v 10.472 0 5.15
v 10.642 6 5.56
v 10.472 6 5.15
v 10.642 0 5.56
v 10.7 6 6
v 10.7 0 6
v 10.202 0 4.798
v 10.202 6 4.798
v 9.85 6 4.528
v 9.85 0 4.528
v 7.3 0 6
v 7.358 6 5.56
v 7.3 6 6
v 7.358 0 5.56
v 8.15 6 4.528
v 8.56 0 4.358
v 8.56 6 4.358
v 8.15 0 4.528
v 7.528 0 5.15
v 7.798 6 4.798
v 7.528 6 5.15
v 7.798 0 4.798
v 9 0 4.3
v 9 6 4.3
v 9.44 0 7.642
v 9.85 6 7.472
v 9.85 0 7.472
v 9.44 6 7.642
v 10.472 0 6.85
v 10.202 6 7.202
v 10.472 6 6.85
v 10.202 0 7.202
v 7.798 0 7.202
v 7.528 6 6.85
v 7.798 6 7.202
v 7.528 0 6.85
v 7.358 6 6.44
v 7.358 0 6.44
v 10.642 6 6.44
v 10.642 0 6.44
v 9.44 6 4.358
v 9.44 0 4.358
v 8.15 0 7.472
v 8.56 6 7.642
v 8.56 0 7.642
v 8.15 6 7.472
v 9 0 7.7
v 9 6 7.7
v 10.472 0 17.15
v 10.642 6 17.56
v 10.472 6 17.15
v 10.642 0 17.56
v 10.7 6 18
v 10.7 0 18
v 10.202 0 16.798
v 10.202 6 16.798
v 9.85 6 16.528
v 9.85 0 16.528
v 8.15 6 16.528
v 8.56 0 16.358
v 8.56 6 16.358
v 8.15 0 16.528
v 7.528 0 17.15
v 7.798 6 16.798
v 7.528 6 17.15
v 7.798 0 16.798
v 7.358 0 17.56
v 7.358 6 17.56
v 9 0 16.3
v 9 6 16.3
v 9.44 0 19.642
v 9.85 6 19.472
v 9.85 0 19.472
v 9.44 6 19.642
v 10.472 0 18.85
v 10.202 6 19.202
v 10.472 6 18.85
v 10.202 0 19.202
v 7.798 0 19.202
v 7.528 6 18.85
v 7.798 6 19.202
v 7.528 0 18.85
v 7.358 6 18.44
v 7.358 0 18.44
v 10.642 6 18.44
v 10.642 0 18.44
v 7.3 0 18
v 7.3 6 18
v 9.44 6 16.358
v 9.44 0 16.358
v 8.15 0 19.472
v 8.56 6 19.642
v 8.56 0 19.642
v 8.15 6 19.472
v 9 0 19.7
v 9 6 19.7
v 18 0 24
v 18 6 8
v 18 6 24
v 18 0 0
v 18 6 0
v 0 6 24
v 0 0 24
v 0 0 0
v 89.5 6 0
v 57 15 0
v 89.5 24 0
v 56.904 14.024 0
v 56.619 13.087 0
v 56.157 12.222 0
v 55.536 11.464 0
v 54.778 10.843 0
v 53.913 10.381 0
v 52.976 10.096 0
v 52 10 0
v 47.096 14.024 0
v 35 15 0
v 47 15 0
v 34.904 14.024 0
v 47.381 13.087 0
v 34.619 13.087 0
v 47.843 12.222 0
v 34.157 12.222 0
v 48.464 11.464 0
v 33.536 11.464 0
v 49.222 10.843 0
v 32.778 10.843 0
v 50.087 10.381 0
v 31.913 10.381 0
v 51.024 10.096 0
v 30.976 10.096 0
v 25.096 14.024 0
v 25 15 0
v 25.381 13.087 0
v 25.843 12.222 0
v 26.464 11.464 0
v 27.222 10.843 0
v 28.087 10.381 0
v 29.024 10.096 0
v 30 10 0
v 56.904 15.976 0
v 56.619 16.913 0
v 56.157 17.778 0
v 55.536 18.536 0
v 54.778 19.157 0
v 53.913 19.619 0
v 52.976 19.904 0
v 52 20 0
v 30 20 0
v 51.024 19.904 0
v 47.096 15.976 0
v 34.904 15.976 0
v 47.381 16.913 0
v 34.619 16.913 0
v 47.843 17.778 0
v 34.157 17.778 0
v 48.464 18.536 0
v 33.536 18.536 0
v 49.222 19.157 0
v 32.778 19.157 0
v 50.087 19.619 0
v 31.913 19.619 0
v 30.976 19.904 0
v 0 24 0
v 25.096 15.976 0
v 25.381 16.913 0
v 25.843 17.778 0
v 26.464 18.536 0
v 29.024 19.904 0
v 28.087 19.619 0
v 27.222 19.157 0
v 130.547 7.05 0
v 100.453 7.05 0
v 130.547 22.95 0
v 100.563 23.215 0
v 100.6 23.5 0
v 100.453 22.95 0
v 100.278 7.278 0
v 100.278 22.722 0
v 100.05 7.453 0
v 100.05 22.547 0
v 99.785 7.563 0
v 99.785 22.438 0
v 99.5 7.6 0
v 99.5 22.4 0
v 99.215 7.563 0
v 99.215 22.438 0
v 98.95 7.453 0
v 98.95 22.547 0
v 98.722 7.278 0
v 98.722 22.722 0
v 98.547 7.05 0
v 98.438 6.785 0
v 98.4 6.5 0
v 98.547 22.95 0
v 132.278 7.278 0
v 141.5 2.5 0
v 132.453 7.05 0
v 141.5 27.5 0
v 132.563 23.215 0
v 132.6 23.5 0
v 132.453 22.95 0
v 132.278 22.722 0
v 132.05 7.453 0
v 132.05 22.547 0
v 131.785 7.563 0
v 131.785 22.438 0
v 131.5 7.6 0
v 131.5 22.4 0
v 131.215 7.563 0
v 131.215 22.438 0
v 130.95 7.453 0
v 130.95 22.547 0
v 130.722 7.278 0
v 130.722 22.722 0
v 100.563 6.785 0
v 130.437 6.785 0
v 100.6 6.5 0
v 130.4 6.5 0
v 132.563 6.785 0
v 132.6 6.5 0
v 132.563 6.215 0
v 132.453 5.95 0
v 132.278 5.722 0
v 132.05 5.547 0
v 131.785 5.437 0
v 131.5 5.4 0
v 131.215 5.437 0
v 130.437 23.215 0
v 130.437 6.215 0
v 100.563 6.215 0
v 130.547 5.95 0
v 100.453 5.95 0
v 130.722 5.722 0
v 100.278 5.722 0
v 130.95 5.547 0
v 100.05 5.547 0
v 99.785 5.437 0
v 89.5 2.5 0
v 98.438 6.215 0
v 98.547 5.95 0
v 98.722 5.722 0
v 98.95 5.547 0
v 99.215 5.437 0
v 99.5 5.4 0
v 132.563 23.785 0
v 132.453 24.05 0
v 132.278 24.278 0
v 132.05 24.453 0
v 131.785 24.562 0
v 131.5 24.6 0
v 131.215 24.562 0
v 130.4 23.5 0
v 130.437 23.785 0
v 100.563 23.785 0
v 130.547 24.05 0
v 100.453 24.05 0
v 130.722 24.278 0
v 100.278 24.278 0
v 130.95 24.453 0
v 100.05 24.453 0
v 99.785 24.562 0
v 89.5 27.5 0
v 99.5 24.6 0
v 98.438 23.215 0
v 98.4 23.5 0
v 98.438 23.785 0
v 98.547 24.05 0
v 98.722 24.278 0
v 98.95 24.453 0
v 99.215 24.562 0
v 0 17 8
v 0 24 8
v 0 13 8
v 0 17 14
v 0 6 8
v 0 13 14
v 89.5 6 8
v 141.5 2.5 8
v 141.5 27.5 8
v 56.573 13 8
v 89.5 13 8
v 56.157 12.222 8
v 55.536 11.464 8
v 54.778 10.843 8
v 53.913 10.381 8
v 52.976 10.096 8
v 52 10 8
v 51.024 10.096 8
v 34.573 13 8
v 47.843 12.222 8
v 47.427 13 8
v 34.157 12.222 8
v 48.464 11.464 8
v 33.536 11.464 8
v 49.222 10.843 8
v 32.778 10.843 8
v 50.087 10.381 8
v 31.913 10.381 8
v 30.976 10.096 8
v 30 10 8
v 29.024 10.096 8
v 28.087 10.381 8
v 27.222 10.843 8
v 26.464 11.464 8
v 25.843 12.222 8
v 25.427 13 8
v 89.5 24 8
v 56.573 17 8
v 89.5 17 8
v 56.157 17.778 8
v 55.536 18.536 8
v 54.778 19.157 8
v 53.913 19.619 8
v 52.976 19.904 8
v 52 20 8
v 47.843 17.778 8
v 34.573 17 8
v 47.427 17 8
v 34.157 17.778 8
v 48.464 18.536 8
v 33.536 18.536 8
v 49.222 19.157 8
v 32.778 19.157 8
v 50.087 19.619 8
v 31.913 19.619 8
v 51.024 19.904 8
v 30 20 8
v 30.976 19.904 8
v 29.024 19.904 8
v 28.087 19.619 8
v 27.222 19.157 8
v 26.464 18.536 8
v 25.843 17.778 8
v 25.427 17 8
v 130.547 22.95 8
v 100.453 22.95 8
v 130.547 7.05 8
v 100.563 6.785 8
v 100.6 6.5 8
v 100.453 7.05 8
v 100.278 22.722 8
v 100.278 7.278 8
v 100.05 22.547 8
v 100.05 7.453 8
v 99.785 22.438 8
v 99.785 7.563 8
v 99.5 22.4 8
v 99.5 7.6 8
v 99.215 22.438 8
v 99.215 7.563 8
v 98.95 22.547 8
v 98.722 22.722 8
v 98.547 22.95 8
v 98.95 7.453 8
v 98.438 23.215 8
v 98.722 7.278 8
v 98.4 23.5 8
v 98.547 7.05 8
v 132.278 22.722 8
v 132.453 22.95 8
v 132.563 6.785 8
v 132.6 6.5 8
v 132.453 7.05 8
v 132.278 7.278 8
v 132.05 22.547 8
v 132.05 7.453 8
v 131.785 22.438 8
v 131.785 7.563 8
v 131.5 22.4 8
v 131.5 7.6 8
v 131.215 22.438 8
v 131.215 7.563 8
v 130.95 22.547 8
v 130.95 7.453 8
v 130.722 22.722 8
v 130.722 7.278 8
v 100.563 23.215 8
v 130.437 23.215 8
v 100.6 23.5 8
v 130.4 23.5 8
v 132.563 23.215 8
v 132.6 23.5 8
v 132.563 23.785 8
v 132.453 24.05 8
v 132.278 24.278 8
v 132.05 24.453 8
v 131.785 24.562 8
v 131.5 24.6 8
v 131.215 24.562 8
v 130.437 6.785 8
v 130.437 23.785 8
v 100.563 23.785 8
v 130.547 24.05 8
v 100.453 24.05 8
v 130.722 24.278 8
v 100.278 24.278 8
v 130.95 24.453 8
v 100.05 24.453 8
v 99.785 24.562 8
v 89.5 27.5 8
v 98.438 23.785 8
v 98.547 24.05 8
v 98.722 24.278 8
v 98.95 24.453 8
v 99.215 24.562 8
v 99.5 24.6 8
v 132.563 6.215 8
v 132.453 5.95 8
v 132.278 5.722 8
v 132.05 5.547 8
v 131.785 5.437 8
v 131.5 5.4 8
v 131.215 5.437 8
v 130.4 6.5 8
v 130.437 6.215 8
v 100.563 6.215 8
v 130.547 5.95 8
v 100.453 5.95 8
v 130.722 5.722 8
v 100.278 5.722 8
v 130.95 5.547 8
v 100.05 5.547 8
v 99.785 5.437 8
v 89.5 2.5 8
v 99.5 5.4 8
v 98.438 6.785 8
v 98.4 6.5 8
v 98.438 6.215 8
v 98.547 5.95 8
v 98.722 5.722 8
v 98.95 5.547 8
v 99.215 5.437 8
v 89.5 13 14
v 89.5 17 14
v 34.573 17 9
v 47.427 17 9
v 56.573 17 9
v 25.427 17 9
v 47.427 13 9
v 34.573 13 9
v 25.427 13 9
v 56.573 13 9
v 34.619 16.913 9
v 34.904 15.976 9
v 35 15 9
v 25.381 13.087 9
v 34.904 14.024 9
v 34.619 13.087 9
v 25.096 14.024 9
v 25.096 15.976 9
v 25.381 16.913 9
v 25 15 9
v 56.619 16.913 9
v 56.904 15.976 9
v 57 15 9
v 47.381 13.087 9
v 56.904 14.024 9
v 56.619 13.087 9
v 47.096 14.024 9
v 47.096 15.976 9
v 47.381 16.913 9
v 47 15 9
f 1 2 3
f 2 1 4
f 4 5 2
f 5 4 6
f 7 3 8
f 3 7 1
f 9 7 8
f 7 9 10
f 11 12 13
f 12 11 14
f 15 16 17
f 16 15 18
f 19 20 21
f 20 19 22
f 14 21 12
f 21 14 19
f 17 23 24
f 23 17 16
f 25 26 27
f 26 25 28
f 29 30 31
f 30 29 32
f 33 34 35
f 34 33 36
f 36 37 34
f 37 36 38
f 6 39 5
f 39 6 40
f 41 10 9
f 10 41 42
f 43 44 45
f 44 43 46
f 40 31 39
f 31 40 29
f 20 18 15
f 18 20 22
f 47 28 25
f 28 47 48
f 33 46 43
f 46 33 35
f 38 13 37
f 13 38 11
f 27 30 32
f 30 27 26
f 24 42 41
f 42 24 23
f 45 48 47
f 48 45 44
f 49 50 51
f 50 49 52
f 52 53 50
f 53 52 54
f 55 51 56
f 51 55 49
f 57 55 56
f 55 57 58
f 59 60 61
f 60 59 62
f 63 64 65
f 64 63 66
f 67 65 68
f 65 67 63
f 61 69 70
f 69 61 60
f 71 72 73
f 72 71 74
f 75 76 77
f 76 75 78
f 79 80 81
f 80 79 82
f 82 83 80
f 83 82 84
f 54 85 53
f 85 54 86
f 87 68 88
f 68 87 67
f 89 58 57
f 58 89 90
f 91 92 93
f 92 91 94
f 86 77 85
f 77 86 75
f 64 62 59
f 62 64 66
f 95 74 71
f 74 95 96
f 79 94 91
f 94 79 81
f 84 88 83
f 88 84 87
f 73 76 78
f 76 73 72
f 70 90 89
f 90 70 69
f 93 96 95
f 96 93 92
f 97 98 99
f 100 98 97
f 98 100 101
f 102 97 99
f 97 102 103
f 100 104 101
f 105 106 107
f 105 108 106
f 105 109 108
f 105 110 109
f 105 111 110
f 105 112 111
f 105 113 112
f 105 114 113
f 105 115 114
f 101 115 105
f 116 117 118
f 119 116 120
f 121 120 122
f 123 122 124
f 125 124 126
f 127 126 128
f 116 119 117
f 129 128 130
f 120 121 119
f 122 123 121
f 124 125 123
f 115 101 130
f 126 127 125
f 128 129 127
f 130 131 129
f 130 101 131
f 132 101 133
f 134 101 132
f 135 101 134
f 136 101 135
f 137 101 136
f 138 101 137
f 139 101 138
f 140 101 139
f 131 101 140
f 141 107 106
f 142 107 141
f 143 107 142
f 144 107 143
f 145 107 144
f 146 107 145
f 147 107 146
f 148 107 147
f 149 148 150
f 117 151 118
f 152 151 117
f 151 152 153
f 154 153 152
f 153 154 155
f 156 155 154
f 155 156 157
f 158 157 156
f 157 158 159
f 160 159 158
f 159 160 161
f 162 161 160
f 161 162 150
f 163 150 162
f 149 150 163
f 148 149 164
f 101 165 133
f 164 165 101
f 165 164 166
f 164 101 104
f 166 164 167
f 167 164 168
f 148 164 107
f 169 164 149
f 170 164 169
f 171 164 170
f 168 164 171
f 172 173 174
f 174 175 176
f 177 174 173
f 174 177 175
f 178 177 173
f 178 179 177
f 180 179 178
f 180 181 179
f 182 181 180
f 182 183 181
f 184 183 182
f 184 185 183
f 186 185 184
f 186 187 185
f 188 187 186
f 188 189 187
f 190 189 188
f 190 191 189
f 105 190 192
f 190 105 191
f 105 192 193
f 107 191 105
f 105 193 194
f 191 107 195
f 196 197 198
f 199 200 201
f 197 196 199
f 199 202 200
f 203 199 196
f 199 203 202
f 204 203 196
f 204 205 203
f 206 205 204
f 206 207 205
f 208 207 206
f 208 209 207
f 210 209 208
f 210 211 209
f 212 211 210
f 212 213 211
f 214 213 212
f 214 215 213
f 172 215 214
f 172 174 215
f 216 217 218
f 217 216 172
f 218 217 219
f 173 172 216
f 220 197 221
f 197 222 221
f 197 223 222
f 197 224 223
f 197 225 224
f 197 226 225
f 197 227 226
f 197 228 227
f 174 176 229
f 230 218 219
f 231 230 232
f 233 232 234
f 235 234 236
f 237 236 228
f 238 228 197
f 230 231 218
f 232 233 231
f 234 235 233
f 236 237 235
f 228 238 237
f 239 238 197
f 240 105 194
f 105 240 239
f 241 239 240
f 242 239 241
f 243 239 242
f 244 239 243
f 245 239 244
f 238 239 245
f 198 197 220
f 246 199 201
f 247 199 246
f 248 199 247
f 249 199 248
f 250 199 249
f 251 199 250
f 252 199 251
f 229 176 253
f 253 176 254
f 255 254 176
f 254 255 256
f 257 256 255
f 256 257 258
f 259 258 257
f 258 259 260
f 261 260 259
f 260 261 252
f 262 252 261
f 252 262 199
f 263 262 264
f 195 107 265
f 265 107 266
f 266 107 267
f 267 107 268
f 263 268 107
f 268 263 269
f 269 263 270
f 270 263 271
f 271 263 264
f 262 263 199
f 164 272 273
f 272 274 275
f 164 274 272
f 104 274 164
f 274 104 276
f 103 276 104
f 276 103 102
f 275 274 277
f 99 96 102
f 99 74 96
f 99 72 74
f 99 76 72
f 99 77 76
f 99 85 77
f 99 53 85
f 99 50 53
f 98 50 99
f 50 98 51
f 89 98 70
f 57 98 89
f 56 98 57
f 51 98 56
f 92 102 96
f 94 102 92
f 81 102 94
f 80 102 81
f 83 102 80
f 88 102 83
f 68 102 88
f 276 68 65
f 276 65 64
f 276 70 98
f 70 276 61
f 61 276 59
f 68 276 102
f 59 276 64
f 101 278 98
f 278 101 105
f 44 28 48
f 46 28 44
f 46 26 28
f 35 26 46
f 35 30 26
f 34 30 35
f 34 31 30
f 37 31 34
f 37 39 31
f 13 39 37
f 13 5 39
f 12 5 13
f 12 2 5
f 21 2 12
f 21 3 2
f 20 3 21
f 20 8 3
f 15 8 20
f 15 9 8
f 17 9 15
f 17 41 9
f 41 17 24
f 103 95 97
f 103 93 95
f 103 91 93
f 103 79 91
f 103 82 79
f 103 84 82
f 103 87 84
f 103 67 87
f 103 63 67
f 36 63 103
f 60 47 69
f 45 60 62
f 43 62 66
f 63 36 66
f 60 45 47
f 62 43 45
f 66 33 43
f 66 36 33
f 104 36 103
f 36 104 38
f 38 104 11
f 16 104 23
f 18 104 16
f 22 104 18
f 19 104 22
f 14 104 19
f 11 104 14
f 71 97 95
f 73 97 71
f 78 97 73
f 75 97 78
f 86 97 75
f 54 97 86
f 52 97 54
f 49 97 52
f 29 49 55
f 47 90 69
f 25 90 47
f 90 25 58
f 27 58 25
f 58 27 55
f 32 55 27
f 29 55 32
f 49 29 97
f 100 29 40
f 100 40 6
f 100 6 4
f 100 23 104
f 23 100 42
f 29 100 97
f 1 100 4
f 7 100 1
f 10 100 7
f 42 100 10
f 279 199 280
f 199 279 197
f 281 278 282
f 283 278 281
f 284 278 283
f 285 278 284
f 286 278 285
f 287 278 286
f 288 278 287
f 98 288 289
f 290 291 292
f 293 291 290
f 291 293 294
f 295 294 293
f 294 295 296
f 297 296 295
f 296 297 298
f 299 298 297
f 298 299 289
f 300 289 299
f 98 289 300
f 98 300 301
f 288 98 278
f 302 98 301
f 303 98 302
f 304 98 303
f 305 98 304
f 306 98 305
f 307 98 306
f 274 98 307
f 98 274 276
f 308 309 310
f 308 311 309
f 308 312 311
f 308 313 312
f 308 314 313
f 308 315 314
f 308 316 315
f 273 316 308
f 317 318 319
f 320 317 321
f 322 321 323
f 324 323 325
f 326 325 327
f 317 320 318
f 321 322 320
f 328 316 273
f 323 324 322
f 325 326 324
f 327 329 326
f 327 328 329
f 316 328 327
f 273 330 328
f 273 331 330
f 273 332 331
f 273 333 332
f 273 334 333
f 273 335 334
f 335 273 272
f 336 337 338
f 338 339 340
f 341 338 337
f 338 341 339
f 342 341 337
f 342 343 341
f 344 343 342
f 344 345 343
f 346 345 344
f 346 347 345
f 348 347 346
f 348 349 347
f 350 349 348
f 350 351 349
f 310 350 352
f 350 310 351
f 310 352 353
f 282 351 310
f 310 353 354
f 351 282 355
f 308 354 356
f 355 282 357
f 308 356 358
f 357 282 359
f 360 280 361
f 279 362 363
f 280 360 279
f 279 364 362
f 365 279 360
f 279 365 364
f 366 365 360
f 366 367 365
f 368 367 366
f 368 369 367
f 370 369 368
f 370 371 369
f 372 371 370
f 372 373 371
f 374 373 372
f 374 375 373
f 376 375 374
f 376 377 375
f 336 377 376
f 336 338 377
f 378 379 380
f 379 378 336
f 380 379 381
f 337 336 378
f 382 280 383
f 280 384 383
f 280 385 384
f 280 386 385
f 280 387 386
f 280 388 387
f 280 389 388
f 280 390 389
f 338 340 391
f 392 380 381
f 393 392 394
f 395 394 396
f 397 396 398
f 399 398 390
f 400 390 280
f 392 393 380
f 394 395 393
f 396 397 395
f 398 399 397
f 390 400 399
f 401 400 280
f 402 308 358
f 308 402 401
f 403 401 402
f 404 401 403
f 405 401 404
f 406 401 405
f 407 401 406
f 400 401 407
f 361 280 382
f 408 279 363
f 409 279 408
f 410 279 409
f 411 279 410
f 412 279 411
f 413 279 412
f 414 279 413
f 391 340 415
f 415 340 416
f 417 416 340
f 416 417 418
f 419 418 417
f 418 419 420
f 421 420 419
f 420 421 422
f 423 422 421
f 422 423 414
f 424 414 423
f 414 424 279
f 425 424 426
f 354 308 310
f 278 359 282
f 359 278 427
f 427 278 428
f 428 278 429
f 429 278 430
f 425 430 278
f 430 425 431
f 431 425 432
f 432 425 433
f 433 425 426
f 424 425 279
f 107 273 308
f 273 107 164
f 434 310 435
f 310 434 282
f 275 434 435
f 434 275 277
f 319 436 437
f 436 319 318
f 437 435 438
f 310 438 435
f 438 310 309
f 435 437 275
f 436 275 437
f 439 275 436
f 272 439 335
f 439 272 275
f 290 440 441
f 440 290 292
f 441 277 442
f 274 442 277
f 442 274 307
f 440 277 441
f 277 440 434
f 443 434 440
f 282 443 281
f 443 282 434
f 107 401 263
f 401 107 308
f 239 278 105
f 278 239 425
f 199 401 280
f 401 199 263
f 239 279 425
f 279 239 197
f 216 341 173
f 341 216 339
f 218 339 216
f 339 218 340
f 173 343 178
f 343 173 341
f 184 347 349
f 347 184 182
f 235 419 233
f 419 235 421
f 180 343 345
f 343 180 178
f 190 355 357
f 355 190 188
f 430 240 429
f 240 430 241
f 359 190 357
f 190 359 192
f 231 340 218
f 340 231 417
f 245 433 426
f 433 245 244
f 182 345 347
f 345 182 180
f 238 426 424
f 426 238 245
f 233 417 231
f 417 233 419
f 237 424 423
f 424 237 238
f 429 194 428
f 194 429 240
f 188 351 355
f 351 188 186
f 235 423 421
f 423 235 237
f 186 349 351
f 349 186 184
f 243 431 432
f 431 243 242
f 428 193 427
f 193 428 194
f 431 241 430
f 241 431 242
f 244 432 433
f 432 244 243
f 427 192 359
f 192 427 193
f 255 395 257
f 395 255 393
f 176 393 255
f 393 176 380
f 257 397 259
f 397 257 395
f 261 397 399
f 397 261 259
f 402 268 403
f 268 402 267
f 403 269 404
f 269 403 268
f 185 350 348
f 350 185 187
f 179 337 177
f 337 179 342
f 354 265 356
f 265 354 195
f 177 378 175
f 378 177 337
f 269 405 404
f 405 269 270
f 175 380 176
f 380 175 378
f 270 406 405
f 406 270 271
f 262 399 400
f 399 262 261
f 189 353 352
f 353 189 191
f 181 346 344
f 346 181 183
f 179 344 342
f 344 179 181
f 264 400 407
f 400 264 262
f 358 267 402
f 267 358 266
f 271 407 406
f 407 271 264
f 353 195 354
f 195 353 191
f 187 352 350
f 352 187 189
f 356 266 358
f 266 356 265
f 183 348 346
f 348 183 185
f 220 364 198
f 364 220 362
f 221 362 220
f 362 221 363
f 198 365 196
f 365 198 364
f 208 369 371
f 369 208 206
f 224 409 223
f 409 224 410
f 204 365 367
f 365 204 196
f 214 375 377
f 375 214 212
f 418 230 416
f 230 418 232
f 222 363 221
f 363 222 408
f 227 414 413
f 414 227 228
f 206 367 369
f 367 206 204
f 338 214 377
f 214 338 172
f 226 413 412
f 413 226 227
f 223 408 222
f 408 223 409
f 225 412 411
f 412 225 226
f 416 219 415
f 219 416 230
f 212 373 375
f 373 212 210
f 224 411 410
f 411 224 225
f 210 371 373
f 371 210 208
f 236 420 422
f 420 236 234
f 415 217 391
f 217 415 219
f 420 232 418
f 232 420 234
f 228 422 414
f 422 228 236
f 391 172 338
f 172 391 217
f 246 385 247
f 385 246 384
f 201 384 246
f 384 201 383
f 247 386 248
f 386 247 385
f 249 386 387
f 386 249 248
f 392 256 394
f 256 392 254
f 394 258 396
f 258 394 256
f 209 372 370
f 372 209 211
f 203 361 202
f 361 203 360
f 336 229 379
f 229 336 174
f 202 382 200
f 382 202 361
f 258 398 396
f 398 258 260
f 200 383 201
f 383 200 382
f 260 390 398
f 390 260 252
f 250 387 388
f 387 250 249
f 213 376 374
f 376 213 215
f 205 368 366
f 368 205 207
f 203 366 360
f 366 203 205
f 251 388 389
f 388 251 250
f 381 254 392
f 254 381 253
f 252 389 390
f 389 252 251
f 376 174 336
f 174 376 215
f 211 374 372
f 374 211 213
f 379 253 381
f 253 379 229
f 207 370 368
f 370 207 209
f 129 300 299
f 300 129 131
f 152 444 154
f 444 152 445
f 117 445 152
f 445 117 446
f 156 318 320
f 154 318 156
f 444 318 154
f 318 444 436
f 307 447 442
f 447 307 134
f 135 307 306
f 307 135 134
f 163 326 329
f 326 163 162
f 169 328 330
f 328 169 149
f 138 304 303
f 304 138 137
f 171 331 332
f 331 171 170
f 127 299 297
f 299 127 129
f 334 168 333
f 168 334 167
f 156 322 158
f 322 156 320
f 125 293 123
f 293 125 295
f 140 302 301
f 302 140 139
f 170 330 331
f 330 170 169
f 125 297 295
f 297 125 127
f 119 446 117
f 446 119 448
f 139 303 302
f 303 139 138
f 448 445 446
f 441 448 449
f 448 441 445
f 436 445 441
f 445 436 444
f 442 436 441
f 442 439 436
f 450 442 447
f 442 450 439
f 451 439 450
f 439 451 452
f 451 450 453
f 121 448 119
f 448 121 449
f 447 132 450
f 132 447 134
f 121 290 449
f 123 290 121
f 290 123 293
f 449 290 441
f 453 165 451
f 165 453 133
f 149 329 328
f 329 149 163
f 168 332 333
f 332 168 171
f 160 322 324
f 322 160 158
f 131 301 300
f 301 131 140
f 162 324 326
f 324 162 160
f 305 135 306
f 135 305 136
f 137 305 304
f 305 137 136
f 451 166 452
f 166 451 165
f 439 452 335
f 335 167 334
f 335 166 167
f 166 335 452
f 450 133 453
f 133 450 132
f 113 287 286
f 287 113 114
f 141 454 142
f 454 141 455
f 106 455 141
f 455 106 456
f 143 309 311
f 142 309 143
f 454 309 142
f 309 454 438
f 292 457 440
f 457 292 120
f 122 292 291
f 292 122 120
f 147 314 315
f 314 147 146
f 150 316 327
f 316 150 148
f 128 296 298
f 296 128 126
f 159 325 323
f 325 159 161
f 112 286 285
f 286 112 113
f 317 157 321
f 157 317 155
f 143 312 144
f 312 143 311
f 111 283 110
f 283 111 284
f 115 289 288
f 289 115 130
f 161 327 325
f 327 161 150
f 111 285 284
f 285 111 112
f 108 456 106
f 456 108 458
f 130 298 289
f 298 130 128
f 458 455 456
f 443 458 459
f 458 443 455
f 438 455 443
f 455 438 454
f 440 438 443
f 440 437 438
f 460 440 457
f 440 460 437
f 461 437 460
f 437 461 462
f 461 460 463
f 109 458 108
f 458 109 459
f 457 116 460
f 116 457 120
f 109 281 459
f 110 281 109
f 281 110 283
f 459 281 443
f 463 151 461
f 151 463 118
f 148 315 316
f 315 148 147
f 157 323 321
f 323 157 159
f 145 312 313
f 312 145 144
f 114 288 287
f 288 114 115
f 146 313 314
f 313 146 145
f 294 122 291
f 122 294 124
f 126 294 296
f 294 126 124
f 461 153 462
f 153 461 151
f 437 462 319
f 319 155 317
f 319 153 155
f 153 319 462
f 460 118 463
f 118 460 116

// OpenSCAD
// file: layout.scad
// GENERATED by cad/fit.py from cad/ordered_parts.toml and config.scad.
// Do not edit: change those and run  python3 cad/fit.py  (from sport_cam/).

base_d = 141;
base_h = 84;
window_z = 36.5;
shelf_z = 48.5;
shelf_r = 66.75;
gap_ang = 300;
gap_d = 22;
post_r = 63.5;
post_angs = [15, 100, 225];
window_ribs = [15, 35, 55, 75, 95, 115, 135, 155, 175, 195, 215, 235, 255, 275, 295, 315, 335, 355];
pi_holes = [[-36.525, -40.718], [13.704, -11.718], [-61.025, 1.718], [-10.796, 30.718]];
pi_hole_d = 2.9;
usbc_ang = 150;
usbc_z = 8.35;
usbc_w = 13.5;
usbc_h = 8;
jack_ang = 210;
jack_z = 9.5;
jack_d = 8.2;
switch_ang = 120;
switch_z = 11.5;
switch_cut_w = 19.2;
switch_cut_h = 13.2;
switch_panel_t = 2;
vents_low = [5, 25, 45, 65, 245, 305, 325, 345];
vent_low_z = 9;
vents_high = [5, 65, 85, 105, 165, 185, 205, 245, 265, 285, 345];
vent_high_z = 64.75;
lid_screw_angs = [45, 135, 225, 315];
lid_screw_z = 81;
lid_nut_recess = 0.7;
ptz_nut_af = 5.5;
ptz_slot_min = 30;
ptz_slot_max = 72;
risers = [];
insert_od = 12.7;
insert_l = 8;
bank_l = 150;
bank_w = 72;
bank_h = 30;
uwb_l = 40;
uwb_w = 25;
uwb_hole_dx = 32;
uwb_hole_dy = 17;
ula1_tangential = false;
mast_d = 12.7;
pod_inner_l = 138;
pod_inner_w = 27;
pod_inner_h = 25;
pod_ula1_x0 = 98;
pod_charge_slot = true;
usb_entry_ang = 25;
usb_entry_z = 71;
usb_entry_w = 18;
usb_entry_h = 10;
// file: config.scad
// SportCam — parametric dimensions (mm). Every part file includes this.
//
// Three kinds of number feed the CAD:
//   * design choices — wall thickness, clearances, the anchor baseline — set below;
//   * the sizes of the parts you buy — in ../../cad/ordered_parts.toml;
//   * the layout — where each board sits, which way the Pi faces, how big
//     the enclosure is — which ../../cad/fit.py solves from the other two
//     and writes to layout.scad (included half-way down).
// After changing either file run   python3 cad/fit.py   from sport_cam/.
// It re-solves the layout, re-renders the STLs and audits that every part
// fits together and prints on a Bambu Lab A1 Mini (cad/FIT_REPORT.md).
//
// Keep the numbers above the include plain numbers (fit.py reads them);
// anything worked out from the layout goes below it.
//
// This is the **PTZ-base build**: the camera, pan and tilt all come from the
// Arducam IMX477 PTZ camera with metal pan-tilt base (B0167B12), which bolts
// to the lid of a static enclosure — see docs/design/03-mechanical-design.md.

$fn = 96;
clr = 0.25;                    // general printed-fit clearance per side

// ---- enclosure -------------------------------------------------------------
// Bottom to top: the power boards stuck to the floor; the LED ring under a
// printed shelf, shining out through the LED window; the Raspberry Pi on the
// shelf; the lid with the camera. Every part must print in one piece on a
// Bambu Lab A1 Mini (≤ 170 mm on every axis); fit.py keeps it that way.
base_d_min    = 135;           // narrowest enclosure (outer Ø); fit.py widens it only if the parts need it
base_h_min    = 66;            // lowest floor-to-lid height; fit.py raises it to clear the stack
base_wall     = 3;
lid_t         = 5;             // lid is structural: it carries the whole camera
spigot_h      = 6;             // locating ring under the lid that drops into the mouth
spigot_w      = 3;
lid_screw_pad = 7;             // the ring is thickened here for the four radial M3 inserts
lid_screw_d   = 3.4;
led_window_h  = 12;            // circumferential window the LED ring lights
window_bridge = 22;            // longest unsupported span over the window; ribs every this far
window_rib_w  = 3;
diffuser_t    = 1.6;           // translucent band slid over the outside of the window
diffuser_lip  = 2;             // how far it overlaps the wall above and below
ledge_h       = 2;             // the band rests on this outside ledge

tripod_boss_d = 24;            // floor boss for the 3/8-16 insert (bore from ordered_parts.toml)
tripod_boss_h = 8;

tape_t        = 1;             // foam tape under the power boards and the LED ring
part_gap      = 2;             // clearance fit.py keeps between parts
wall_gap      = 1;             // and between a part and the wall
shelf_t       = 3;             // the Pi shelf
post_d        = 10;            // shelf posts, merged into the wall; M3 insert in each top
post_insert_d = 4.0;
vent_w        = 4;
vent_h        = 8;
ribbon_slack_h = 8;            // clear height kept under the lid opening for the coiled camera ribbon

// ---- Arducam pan-tilt base interface ---------------------------------------
// Arducam publishes no drawing for the B0167B12 metal base and the footprint
// has changed between revisions, so the lid is cut with radial SLOTS spanning
// this range. Your base's spacing goes in ordered_parts.toml [ptz]; the audit
// checks it lands inside.
ptz_bolt_min  = 30;
ptz_bolt_max  = 72;
ptz_slot_w    = 3.4;           // M3 clearance
ptz_cable_d   = 34;            // central opening: CSI ribbon + servo leads drop through

// ---- UWB anchor arms (static) ----------------------------------------------
// The anchors don't rotate with the camera, so the arms bolt to the enclosure
// wall. Board centres land `uwb_half_base` either side of the pan axis; the
// tracker subtracts the commanded pan angle (docs/04).
uwb_half_base = 190;           // board centre; the antenna sits 10 mm further out → 400 mm
arm_w = 18; arm_t = 8;
arm_root_h = 24;               // bracket height where the arm meets the wall
arm_boss_z = 10;               // bottom of the wall bosses
arm_insert_d = 4.0;            // M3 heat-set inserts in the bosses
ula1_standoff_h = 3;

// ---- third anchor mast (A3) ------------------------------------------------
// A3 gives elevation, which the horizontal A1-A2 bar cannot. It stands on a
// bought ½-inch hardwood dowel held in a printed foot on a third wall boss at
// −X — directly behind the lens, where pan (±80°) never points it — with a
// printed cradle carrying the board at the top. Wood, not metal: a metal
// tube right under a UWB antenna detunes it.
anchor_board_z = 22;           // A1/A2 board height above the enclosure floor
uwb_v_base  = 250;             // A3 board this far above A1/A2 (= σφ baseline)
mast_wall   = 4;               // socket wall
mast_floor  = 2;               // closed socket bottom; sets the dowel's height
mast_foot_h = 44;              // foot socket depth: long, so the mast stands still
mast_cap_h  = 30;              // cradle socket depth

// ---- battery tray ----------------------------------------------------------
// Sized to the power bank in ordered_parts.toml. Straps to a tripod leg or
// centre column, or sandwiches under the enclosure on a long 1/4-20.
tray_wall = 2.4;
tray_lip = 10;                 // how far the side walls come up the bank
tray_strap_w = 26;             // hook-and-loop strap slots

// ---- wearable pod ----------------------------------------------------------
// The tag is a ULA1 plugged straight into a slim USB bank, end to end; fit.py
// sizes the pod from both (ordered_parts.toml).
pod_wall = 2.0;
strap_w = 26;                  // elastic armband width
pod_max_l = 150;               // longest pod that's still comfortable on an arm

// ---- solved layout ---------------------------------------------------------
include <layout.scad>          // GENERATED by cad/fit.py — bought-part sizes + layout

R_in = base_d / 2 - base_wall; // inside of the wall
tripod_hole_d = insert_od;     // the 3/8-16 insert, epoxied: a snug slip fit

arm_boss_r = base_d / 2 + 4;   // outer face of the wall boss the arm bolts to
arm_len = uwb_half_base - arm_boss_r;             // boss face to board centre

// ULA1 pad. fit.py turns the boards across the arms (plug towards −X) when
// the extension cable's socket end has no room between the plug and the
// enclosure; the pad and holes follow.
pad_along   = ula1_tangential ? uwb_w + 12 : uwb_l + 12;
pad_across  = ula1_tangential ? uwb_l : uwb_w;
hole_along  = ula1_tangential ? uwb_hole_dy : uwb_hole_dx;
hole_across = ula1_tangential ? uwb_hole_dx : uwb_hole_dy;

mast_bore   = mast_d + 2 * clr;
mast_sock_r = mast_bore / 2 + mast_wall;
// mast axis from the pan axis: boss face, 6 mm root plate, socket, 2 mm overlap.
// fit.py keeps device/sportcam/config.py UWB_A3_BACK_M in step.
mast_axis_r = arm_boss_r + 6 + mast_sock_r - 2;
// The cradle puts the board mast_floor + arm_t + 4 above the dowel top
// (socket floor, pad, standoffs), and the foot's floor sits on the boss at
// z = arm_boss_z, so cut the dowel to this:
cradle_rise  = mast_floor + arm_t + 4;
mast_dowel_l = anchor_board_z + uwb_v_base - cradle_rise - (arm_boss_z + mast_floor);
// main file
// Static UWB anchor arm (×2). Bolts to the enclosure's side boss and reaches
// out so the board centre sits uwb_half_base from the pan axis — 400 mm
// between the two antennas by default.
//
// The arms no longer rotate with the camera, so they can be longer than the
// old rotating pair if you want better bearing resolution: raise
// `uwb_half_base` in config.scad (σθ scales as 1/baseline, docs/04).
// The ULA1 sits on the pad either along the arm (USB plug towards the
// enclosure) or across it (plug towards −X). cad/fit.py picks: along needs
// room between the plug and the arm's root for the extension cable's rigid
// socket end, and with the assumed sizes there isn't, so the boards go across
// and the cable runs off to the side. pad_* and hole_* in config.scad follow.
// Print flat, 4+ perimeters.
include <config.scad>

rib_h = 6;

module root_bracket() {
    // Vertical plate that mates with the enclosure's arm boss
    difference() {
        cube([arm_w, 6, arm_root_h]);
        for (z = [6, 18])
            translate([arm_w / 2, -1, z]) rotate([-90, 0, 0])
                cylinder(d = 3.4, h = 8, $fn = 24);
    }
}

// The arm body sits ON the bed (z = 0) rather than mid-way up the bracket, so
// the whole part prints flat with no supports under the span.
module anchor_arm() {
    difference() {
        union() {
            // the arm itself, lying along +X from the bracket face
            translate([0, 6, 0])
                cube([arm_len + pad_along / 2, arm_w, arm_t]);
            // stiffening rib, on top of the arm
            translate([0, 6 + arm_w / 2 - 2, arm_t])
                cube([arm_len - pad_along / 2, 4, rib_h]);
            // board pad at the tip
            translate([arm_len - pad_along / 2, 6 + arm_w / 2 - pad_across / 2, 0])
                cube([pad_along, pad_across, arm_t]);
            root_bracket();
        }
        // board standoff holes — M2.5; the pattern is in ordered_parts.toml [ula1]
        translate([arm_len, 6 + arm_w / 2, -1])
            for (x = [-1, 1], y = [-1, 1])
                translate([x * hole_along / 2, y * hole_across / 2, 0])
                    cylinder(d = 2.2, h = arm_t + 2, $fn = 24);
        // weight relief
        for (x = [30:22:arm_len - pad_along / 2 - 20])
            translate([x, 6 + arm_w / 2, -1])
                cylinder(d = 10, h = arm_t + 2, $fn = 32);
    }
}

anchor_arm();
